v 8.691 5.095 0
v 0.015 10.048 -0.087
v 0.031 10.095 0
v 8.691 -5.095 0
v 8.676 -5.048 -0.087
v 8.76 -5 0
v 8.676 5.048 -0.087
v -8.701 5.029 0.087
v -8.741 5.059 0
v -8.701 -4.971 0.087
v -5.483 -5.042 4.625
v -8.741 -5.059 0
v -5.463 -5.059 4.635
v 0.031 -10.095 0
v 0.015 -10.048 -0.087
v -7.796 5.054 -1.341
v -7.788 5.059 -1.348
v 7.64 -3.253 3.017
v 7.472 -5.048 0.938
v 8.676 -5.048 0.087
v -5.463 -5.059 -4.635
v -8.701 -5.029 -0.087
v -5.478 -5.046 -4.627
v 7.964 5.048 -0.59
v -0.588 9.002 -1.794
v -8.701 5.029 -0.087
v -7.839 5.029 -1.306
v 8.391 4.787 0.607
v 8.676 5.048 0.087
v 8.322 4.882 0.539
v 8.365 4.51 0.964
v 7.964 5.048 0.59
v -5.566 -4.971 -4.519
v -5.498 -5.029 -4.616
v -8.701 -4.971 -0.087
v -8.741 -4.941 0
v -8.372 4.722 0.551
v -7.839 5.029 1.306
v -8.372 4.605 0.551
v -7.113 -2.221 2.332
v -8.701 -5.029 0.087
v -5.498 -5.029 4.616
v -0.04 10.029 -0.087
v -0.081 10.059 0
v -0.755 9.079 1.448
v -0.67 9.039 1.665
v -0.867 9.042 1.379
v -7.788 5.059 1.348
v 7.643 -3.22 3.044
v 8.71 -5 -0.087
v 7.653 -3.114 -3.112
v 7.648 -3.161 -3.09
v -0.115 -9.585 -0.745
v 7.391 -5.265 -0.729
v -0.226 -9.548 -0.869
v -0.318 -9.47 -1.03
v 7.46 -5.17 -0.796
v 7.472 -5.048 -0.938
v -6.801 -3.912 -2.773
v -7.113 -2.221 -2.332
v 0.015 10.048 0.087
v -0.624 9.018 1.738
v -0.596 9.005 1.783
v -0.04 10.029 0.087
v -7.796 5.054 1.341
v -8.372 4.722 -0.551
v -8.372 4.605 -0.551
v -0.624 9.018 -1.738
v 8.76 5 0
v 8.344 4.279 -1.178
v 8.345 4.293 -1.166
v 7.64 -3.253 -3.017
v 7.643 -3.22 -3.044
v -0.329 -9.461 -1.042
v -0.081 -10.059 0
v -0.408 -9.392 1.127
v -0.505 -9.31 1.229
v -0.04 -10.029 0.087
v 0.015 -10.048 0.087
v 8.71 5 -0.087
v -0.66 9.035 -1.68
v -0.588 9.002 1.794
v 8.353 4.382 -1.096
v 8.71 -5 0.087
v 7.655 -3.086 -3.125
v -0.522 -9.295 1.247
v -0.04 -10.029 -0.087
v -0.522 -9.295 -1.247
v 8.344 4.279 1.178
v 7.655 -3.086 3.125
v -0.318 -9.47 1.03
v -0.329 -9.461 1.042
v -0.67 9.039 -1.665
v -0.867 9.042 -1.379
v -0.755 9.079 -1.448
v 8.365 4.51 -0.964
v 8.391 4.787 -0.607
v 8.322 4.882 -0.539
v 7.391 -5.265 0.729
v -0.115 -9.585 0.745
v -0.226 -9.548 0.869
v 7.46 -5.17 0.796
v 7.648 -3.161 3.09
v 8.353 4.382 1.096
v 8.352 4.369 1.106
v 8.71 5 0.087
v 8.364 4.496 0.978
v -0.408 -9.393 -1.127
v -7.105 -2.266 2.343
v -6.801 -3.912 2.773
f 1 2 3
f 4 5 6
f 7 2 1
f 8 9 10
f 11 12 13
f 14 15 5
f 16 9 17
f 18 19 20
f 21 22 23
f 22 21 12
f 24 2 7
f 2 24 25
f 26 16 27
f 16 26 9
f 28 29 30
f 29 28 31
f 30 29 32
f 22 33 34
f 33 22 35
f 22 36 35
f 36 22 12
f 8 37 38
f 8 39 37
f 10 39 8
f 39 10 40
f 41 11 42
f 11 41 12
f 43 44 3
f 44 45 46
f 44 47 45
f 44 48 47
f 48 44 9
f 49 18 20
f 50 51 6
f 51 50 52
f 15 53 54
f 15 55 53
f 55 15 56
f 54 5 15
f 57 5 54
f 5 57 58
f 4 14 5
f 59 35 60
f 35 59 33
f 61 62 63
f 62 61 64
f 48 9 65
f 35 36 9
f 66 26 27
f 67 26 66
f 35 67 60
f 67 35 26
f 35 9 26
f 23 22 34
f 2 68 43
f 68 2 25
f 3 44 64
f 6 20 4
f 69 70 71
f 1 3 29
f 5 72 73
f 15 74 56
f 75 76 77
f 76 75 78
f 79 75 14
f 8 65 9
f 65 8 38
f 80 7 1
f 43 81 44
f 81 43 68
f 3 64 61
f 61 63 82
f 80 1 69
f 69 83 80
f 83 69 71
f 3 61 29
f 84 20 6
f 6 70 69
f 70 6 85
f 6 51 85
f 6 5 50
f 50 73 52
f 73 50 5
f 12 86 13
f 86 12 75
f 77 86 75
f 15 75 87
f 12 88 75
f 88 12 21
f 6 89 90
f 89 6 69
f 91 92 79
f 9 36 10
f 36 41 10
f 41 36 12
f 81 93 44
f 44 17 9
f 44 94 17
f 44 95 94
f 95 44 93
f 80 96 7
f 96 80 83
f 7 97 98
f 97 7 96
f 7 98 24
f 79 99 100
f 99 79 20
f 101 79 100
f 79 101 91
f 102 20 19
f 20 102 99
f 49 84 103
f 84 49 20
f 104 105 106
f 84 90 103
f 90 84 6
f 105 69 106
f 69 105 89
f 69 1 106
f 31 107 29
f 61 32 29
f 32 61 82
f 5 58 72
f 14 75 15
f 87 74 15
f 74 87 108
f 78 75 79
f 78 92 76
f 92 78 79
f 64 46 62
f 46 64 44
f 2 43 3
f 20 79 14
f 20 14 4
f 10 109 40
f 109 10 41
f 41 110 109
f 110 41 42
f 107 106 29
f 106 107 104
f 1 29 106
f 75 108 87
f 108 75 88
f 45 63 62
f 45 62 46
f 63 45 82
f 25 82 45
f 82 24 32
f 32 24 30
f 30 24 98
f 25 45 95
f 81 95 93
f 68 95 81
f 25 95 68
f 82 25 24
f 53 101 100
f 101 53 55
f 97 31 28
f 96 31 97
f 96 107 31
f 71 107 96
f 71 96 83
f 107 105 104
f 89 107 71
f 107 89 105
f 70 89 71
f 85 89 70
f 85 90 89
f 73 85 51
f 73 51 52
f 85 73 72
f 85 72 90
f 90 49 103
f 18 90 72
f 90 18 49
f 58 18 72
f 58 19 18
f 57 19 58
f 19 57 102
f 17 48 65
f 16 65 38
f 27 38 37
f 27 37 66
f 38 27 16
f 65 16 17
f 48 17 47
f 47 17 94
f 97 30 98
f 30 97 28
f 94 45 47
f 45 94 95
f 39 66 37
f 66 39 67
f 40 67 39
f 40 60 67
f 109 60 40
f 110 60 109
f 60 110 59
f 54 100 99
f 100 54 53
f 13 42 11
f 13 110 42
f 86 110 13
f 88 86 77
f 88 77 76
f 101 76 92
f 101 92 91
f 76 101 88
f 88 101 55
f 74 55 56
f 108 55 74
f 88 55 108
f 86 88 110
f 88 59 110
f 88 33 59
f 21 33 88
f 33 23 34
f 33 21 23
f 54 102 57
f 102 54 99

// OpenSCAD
// Auto-generated OpenSCAD file

    inner_points = 10*[[-0.8291415458319079, 0.4663499702585989, 2.058495952064754e-05], [-0.07855180895714171, 0.8983503547280824, 0.5000112995897901], [-0.078569895871595, 0.898360286145608, -0.4999887001973251], [0.7360452910153114, -0.5169581736692761, 0.4999825100217997], [-0.6720275168609681, -0.3853110430415919, 0.5000092851568458], [0.8291157830596579, 0.4787095887324264, -0.5000092851568458], [-0.014544445859454913, -0.9489585581387598, -8.204608469786212e-06], [0.07856222001379826, 0.04668934142789162, 0.9999999997871154], [0.07852604618489165, 0.046709204262942824, -0.9999999997871154], [0.7360272041008581, -0.5169482422517505, -0.5000174897653156], [-0.6720456037754214, -0.38530111162406633, -0.4999907146302695], [0.8291338699741113, 0.47869965731490083, 0.4999907146302695]];

    outer_points = 10*[[-0.2886740751691849, -0.49999976883649444, -0.8164970970485246], [-0.2886739150147398, 0.500000231163467, -0.8164968705552657], [0.5773514086916217, 9.246539450780134e-08, -0.8164957751769395], [-0.2886761940198712, 0.49999986130188906, 0.8164962912985543], [-0.8660254838608068, -0.49999986130188906, -1.3218715850804585e-06], [0.8660254838608068, 0.49999986130188906, 1.3218715850804585e-06], [-0.2886763541743163, -0.5000001386980726, 0.8164960648052954], [-0.8660253237063618, 0.5000001386980726, -1.0953783261546945e-06], [0.8660253237063618, -0.5000001386980726, 1.0953783261546945e-06], [0.5773491296864904, -2.77396183523404e-07, 0.8164973866768803], [-1.6015444513559745e-07, -0.9999999999999616, -2.2649325892100838e-07], [1.6015444513559745e-07, 0.9999999999999616, 2.2649325892100838e-07]];

    // Convex hull for inner set (I)
    module inner_hull() {
        hull() {
            for (p = inner_points) {
                translate(p) sphere(r=0.1);
            }
        }
    }

    // Convex hull for outer set (O) minus inner hull (O \ I)
    module outer_minus_inner() {
        difference() {
            hull() {
                for (p = outer_points) {
                    translate(p) sphere(r=0.1);
                }
            }
            inner_hull(); // Subtract inner hull
        }
    }

    // Convex hull for outer set (O) minus all translated inner hulls
    module outer_minus_AllTranslationInner() {
        difference() {
            hull() {
                for (p = outer_points) {
                    translate(p) sphere(r=0.1);
                }
            }
            hull() {
                translate([0,0,50]) inner_hull();
                translate([0,0,-50]) inner_hull();
            }; // Subtract translated inner hulls
        }
    }

    // Difference between outer_minus_inner and outer_minus_AllTranslationInner
    module outer_minus_inner_diff() {
        difference() {
            // Outer minus inner
            difference() {
                hull() {
                    for (p = outer_points) {
                        translate(p) sphere(r=0.1);
                    }
                }
                inner_hull();
            }

            // Subtract Outer minus AllTranslationInner
            difference() {
                hull() {
                    for (p = outer_points) {
                        translate(p) sphere(r=0.1);
                    }
                }
                hull() {
                    translate([0,0,50]) inner_hull();
                    translate([0,0,-50]) inner_hull();
                };
            }
        }
    }

    // Rendering all with colors applied
    color([0, 1, 0, 1]) outer_minus_AllTranslationInner(); // Opaque green
    
